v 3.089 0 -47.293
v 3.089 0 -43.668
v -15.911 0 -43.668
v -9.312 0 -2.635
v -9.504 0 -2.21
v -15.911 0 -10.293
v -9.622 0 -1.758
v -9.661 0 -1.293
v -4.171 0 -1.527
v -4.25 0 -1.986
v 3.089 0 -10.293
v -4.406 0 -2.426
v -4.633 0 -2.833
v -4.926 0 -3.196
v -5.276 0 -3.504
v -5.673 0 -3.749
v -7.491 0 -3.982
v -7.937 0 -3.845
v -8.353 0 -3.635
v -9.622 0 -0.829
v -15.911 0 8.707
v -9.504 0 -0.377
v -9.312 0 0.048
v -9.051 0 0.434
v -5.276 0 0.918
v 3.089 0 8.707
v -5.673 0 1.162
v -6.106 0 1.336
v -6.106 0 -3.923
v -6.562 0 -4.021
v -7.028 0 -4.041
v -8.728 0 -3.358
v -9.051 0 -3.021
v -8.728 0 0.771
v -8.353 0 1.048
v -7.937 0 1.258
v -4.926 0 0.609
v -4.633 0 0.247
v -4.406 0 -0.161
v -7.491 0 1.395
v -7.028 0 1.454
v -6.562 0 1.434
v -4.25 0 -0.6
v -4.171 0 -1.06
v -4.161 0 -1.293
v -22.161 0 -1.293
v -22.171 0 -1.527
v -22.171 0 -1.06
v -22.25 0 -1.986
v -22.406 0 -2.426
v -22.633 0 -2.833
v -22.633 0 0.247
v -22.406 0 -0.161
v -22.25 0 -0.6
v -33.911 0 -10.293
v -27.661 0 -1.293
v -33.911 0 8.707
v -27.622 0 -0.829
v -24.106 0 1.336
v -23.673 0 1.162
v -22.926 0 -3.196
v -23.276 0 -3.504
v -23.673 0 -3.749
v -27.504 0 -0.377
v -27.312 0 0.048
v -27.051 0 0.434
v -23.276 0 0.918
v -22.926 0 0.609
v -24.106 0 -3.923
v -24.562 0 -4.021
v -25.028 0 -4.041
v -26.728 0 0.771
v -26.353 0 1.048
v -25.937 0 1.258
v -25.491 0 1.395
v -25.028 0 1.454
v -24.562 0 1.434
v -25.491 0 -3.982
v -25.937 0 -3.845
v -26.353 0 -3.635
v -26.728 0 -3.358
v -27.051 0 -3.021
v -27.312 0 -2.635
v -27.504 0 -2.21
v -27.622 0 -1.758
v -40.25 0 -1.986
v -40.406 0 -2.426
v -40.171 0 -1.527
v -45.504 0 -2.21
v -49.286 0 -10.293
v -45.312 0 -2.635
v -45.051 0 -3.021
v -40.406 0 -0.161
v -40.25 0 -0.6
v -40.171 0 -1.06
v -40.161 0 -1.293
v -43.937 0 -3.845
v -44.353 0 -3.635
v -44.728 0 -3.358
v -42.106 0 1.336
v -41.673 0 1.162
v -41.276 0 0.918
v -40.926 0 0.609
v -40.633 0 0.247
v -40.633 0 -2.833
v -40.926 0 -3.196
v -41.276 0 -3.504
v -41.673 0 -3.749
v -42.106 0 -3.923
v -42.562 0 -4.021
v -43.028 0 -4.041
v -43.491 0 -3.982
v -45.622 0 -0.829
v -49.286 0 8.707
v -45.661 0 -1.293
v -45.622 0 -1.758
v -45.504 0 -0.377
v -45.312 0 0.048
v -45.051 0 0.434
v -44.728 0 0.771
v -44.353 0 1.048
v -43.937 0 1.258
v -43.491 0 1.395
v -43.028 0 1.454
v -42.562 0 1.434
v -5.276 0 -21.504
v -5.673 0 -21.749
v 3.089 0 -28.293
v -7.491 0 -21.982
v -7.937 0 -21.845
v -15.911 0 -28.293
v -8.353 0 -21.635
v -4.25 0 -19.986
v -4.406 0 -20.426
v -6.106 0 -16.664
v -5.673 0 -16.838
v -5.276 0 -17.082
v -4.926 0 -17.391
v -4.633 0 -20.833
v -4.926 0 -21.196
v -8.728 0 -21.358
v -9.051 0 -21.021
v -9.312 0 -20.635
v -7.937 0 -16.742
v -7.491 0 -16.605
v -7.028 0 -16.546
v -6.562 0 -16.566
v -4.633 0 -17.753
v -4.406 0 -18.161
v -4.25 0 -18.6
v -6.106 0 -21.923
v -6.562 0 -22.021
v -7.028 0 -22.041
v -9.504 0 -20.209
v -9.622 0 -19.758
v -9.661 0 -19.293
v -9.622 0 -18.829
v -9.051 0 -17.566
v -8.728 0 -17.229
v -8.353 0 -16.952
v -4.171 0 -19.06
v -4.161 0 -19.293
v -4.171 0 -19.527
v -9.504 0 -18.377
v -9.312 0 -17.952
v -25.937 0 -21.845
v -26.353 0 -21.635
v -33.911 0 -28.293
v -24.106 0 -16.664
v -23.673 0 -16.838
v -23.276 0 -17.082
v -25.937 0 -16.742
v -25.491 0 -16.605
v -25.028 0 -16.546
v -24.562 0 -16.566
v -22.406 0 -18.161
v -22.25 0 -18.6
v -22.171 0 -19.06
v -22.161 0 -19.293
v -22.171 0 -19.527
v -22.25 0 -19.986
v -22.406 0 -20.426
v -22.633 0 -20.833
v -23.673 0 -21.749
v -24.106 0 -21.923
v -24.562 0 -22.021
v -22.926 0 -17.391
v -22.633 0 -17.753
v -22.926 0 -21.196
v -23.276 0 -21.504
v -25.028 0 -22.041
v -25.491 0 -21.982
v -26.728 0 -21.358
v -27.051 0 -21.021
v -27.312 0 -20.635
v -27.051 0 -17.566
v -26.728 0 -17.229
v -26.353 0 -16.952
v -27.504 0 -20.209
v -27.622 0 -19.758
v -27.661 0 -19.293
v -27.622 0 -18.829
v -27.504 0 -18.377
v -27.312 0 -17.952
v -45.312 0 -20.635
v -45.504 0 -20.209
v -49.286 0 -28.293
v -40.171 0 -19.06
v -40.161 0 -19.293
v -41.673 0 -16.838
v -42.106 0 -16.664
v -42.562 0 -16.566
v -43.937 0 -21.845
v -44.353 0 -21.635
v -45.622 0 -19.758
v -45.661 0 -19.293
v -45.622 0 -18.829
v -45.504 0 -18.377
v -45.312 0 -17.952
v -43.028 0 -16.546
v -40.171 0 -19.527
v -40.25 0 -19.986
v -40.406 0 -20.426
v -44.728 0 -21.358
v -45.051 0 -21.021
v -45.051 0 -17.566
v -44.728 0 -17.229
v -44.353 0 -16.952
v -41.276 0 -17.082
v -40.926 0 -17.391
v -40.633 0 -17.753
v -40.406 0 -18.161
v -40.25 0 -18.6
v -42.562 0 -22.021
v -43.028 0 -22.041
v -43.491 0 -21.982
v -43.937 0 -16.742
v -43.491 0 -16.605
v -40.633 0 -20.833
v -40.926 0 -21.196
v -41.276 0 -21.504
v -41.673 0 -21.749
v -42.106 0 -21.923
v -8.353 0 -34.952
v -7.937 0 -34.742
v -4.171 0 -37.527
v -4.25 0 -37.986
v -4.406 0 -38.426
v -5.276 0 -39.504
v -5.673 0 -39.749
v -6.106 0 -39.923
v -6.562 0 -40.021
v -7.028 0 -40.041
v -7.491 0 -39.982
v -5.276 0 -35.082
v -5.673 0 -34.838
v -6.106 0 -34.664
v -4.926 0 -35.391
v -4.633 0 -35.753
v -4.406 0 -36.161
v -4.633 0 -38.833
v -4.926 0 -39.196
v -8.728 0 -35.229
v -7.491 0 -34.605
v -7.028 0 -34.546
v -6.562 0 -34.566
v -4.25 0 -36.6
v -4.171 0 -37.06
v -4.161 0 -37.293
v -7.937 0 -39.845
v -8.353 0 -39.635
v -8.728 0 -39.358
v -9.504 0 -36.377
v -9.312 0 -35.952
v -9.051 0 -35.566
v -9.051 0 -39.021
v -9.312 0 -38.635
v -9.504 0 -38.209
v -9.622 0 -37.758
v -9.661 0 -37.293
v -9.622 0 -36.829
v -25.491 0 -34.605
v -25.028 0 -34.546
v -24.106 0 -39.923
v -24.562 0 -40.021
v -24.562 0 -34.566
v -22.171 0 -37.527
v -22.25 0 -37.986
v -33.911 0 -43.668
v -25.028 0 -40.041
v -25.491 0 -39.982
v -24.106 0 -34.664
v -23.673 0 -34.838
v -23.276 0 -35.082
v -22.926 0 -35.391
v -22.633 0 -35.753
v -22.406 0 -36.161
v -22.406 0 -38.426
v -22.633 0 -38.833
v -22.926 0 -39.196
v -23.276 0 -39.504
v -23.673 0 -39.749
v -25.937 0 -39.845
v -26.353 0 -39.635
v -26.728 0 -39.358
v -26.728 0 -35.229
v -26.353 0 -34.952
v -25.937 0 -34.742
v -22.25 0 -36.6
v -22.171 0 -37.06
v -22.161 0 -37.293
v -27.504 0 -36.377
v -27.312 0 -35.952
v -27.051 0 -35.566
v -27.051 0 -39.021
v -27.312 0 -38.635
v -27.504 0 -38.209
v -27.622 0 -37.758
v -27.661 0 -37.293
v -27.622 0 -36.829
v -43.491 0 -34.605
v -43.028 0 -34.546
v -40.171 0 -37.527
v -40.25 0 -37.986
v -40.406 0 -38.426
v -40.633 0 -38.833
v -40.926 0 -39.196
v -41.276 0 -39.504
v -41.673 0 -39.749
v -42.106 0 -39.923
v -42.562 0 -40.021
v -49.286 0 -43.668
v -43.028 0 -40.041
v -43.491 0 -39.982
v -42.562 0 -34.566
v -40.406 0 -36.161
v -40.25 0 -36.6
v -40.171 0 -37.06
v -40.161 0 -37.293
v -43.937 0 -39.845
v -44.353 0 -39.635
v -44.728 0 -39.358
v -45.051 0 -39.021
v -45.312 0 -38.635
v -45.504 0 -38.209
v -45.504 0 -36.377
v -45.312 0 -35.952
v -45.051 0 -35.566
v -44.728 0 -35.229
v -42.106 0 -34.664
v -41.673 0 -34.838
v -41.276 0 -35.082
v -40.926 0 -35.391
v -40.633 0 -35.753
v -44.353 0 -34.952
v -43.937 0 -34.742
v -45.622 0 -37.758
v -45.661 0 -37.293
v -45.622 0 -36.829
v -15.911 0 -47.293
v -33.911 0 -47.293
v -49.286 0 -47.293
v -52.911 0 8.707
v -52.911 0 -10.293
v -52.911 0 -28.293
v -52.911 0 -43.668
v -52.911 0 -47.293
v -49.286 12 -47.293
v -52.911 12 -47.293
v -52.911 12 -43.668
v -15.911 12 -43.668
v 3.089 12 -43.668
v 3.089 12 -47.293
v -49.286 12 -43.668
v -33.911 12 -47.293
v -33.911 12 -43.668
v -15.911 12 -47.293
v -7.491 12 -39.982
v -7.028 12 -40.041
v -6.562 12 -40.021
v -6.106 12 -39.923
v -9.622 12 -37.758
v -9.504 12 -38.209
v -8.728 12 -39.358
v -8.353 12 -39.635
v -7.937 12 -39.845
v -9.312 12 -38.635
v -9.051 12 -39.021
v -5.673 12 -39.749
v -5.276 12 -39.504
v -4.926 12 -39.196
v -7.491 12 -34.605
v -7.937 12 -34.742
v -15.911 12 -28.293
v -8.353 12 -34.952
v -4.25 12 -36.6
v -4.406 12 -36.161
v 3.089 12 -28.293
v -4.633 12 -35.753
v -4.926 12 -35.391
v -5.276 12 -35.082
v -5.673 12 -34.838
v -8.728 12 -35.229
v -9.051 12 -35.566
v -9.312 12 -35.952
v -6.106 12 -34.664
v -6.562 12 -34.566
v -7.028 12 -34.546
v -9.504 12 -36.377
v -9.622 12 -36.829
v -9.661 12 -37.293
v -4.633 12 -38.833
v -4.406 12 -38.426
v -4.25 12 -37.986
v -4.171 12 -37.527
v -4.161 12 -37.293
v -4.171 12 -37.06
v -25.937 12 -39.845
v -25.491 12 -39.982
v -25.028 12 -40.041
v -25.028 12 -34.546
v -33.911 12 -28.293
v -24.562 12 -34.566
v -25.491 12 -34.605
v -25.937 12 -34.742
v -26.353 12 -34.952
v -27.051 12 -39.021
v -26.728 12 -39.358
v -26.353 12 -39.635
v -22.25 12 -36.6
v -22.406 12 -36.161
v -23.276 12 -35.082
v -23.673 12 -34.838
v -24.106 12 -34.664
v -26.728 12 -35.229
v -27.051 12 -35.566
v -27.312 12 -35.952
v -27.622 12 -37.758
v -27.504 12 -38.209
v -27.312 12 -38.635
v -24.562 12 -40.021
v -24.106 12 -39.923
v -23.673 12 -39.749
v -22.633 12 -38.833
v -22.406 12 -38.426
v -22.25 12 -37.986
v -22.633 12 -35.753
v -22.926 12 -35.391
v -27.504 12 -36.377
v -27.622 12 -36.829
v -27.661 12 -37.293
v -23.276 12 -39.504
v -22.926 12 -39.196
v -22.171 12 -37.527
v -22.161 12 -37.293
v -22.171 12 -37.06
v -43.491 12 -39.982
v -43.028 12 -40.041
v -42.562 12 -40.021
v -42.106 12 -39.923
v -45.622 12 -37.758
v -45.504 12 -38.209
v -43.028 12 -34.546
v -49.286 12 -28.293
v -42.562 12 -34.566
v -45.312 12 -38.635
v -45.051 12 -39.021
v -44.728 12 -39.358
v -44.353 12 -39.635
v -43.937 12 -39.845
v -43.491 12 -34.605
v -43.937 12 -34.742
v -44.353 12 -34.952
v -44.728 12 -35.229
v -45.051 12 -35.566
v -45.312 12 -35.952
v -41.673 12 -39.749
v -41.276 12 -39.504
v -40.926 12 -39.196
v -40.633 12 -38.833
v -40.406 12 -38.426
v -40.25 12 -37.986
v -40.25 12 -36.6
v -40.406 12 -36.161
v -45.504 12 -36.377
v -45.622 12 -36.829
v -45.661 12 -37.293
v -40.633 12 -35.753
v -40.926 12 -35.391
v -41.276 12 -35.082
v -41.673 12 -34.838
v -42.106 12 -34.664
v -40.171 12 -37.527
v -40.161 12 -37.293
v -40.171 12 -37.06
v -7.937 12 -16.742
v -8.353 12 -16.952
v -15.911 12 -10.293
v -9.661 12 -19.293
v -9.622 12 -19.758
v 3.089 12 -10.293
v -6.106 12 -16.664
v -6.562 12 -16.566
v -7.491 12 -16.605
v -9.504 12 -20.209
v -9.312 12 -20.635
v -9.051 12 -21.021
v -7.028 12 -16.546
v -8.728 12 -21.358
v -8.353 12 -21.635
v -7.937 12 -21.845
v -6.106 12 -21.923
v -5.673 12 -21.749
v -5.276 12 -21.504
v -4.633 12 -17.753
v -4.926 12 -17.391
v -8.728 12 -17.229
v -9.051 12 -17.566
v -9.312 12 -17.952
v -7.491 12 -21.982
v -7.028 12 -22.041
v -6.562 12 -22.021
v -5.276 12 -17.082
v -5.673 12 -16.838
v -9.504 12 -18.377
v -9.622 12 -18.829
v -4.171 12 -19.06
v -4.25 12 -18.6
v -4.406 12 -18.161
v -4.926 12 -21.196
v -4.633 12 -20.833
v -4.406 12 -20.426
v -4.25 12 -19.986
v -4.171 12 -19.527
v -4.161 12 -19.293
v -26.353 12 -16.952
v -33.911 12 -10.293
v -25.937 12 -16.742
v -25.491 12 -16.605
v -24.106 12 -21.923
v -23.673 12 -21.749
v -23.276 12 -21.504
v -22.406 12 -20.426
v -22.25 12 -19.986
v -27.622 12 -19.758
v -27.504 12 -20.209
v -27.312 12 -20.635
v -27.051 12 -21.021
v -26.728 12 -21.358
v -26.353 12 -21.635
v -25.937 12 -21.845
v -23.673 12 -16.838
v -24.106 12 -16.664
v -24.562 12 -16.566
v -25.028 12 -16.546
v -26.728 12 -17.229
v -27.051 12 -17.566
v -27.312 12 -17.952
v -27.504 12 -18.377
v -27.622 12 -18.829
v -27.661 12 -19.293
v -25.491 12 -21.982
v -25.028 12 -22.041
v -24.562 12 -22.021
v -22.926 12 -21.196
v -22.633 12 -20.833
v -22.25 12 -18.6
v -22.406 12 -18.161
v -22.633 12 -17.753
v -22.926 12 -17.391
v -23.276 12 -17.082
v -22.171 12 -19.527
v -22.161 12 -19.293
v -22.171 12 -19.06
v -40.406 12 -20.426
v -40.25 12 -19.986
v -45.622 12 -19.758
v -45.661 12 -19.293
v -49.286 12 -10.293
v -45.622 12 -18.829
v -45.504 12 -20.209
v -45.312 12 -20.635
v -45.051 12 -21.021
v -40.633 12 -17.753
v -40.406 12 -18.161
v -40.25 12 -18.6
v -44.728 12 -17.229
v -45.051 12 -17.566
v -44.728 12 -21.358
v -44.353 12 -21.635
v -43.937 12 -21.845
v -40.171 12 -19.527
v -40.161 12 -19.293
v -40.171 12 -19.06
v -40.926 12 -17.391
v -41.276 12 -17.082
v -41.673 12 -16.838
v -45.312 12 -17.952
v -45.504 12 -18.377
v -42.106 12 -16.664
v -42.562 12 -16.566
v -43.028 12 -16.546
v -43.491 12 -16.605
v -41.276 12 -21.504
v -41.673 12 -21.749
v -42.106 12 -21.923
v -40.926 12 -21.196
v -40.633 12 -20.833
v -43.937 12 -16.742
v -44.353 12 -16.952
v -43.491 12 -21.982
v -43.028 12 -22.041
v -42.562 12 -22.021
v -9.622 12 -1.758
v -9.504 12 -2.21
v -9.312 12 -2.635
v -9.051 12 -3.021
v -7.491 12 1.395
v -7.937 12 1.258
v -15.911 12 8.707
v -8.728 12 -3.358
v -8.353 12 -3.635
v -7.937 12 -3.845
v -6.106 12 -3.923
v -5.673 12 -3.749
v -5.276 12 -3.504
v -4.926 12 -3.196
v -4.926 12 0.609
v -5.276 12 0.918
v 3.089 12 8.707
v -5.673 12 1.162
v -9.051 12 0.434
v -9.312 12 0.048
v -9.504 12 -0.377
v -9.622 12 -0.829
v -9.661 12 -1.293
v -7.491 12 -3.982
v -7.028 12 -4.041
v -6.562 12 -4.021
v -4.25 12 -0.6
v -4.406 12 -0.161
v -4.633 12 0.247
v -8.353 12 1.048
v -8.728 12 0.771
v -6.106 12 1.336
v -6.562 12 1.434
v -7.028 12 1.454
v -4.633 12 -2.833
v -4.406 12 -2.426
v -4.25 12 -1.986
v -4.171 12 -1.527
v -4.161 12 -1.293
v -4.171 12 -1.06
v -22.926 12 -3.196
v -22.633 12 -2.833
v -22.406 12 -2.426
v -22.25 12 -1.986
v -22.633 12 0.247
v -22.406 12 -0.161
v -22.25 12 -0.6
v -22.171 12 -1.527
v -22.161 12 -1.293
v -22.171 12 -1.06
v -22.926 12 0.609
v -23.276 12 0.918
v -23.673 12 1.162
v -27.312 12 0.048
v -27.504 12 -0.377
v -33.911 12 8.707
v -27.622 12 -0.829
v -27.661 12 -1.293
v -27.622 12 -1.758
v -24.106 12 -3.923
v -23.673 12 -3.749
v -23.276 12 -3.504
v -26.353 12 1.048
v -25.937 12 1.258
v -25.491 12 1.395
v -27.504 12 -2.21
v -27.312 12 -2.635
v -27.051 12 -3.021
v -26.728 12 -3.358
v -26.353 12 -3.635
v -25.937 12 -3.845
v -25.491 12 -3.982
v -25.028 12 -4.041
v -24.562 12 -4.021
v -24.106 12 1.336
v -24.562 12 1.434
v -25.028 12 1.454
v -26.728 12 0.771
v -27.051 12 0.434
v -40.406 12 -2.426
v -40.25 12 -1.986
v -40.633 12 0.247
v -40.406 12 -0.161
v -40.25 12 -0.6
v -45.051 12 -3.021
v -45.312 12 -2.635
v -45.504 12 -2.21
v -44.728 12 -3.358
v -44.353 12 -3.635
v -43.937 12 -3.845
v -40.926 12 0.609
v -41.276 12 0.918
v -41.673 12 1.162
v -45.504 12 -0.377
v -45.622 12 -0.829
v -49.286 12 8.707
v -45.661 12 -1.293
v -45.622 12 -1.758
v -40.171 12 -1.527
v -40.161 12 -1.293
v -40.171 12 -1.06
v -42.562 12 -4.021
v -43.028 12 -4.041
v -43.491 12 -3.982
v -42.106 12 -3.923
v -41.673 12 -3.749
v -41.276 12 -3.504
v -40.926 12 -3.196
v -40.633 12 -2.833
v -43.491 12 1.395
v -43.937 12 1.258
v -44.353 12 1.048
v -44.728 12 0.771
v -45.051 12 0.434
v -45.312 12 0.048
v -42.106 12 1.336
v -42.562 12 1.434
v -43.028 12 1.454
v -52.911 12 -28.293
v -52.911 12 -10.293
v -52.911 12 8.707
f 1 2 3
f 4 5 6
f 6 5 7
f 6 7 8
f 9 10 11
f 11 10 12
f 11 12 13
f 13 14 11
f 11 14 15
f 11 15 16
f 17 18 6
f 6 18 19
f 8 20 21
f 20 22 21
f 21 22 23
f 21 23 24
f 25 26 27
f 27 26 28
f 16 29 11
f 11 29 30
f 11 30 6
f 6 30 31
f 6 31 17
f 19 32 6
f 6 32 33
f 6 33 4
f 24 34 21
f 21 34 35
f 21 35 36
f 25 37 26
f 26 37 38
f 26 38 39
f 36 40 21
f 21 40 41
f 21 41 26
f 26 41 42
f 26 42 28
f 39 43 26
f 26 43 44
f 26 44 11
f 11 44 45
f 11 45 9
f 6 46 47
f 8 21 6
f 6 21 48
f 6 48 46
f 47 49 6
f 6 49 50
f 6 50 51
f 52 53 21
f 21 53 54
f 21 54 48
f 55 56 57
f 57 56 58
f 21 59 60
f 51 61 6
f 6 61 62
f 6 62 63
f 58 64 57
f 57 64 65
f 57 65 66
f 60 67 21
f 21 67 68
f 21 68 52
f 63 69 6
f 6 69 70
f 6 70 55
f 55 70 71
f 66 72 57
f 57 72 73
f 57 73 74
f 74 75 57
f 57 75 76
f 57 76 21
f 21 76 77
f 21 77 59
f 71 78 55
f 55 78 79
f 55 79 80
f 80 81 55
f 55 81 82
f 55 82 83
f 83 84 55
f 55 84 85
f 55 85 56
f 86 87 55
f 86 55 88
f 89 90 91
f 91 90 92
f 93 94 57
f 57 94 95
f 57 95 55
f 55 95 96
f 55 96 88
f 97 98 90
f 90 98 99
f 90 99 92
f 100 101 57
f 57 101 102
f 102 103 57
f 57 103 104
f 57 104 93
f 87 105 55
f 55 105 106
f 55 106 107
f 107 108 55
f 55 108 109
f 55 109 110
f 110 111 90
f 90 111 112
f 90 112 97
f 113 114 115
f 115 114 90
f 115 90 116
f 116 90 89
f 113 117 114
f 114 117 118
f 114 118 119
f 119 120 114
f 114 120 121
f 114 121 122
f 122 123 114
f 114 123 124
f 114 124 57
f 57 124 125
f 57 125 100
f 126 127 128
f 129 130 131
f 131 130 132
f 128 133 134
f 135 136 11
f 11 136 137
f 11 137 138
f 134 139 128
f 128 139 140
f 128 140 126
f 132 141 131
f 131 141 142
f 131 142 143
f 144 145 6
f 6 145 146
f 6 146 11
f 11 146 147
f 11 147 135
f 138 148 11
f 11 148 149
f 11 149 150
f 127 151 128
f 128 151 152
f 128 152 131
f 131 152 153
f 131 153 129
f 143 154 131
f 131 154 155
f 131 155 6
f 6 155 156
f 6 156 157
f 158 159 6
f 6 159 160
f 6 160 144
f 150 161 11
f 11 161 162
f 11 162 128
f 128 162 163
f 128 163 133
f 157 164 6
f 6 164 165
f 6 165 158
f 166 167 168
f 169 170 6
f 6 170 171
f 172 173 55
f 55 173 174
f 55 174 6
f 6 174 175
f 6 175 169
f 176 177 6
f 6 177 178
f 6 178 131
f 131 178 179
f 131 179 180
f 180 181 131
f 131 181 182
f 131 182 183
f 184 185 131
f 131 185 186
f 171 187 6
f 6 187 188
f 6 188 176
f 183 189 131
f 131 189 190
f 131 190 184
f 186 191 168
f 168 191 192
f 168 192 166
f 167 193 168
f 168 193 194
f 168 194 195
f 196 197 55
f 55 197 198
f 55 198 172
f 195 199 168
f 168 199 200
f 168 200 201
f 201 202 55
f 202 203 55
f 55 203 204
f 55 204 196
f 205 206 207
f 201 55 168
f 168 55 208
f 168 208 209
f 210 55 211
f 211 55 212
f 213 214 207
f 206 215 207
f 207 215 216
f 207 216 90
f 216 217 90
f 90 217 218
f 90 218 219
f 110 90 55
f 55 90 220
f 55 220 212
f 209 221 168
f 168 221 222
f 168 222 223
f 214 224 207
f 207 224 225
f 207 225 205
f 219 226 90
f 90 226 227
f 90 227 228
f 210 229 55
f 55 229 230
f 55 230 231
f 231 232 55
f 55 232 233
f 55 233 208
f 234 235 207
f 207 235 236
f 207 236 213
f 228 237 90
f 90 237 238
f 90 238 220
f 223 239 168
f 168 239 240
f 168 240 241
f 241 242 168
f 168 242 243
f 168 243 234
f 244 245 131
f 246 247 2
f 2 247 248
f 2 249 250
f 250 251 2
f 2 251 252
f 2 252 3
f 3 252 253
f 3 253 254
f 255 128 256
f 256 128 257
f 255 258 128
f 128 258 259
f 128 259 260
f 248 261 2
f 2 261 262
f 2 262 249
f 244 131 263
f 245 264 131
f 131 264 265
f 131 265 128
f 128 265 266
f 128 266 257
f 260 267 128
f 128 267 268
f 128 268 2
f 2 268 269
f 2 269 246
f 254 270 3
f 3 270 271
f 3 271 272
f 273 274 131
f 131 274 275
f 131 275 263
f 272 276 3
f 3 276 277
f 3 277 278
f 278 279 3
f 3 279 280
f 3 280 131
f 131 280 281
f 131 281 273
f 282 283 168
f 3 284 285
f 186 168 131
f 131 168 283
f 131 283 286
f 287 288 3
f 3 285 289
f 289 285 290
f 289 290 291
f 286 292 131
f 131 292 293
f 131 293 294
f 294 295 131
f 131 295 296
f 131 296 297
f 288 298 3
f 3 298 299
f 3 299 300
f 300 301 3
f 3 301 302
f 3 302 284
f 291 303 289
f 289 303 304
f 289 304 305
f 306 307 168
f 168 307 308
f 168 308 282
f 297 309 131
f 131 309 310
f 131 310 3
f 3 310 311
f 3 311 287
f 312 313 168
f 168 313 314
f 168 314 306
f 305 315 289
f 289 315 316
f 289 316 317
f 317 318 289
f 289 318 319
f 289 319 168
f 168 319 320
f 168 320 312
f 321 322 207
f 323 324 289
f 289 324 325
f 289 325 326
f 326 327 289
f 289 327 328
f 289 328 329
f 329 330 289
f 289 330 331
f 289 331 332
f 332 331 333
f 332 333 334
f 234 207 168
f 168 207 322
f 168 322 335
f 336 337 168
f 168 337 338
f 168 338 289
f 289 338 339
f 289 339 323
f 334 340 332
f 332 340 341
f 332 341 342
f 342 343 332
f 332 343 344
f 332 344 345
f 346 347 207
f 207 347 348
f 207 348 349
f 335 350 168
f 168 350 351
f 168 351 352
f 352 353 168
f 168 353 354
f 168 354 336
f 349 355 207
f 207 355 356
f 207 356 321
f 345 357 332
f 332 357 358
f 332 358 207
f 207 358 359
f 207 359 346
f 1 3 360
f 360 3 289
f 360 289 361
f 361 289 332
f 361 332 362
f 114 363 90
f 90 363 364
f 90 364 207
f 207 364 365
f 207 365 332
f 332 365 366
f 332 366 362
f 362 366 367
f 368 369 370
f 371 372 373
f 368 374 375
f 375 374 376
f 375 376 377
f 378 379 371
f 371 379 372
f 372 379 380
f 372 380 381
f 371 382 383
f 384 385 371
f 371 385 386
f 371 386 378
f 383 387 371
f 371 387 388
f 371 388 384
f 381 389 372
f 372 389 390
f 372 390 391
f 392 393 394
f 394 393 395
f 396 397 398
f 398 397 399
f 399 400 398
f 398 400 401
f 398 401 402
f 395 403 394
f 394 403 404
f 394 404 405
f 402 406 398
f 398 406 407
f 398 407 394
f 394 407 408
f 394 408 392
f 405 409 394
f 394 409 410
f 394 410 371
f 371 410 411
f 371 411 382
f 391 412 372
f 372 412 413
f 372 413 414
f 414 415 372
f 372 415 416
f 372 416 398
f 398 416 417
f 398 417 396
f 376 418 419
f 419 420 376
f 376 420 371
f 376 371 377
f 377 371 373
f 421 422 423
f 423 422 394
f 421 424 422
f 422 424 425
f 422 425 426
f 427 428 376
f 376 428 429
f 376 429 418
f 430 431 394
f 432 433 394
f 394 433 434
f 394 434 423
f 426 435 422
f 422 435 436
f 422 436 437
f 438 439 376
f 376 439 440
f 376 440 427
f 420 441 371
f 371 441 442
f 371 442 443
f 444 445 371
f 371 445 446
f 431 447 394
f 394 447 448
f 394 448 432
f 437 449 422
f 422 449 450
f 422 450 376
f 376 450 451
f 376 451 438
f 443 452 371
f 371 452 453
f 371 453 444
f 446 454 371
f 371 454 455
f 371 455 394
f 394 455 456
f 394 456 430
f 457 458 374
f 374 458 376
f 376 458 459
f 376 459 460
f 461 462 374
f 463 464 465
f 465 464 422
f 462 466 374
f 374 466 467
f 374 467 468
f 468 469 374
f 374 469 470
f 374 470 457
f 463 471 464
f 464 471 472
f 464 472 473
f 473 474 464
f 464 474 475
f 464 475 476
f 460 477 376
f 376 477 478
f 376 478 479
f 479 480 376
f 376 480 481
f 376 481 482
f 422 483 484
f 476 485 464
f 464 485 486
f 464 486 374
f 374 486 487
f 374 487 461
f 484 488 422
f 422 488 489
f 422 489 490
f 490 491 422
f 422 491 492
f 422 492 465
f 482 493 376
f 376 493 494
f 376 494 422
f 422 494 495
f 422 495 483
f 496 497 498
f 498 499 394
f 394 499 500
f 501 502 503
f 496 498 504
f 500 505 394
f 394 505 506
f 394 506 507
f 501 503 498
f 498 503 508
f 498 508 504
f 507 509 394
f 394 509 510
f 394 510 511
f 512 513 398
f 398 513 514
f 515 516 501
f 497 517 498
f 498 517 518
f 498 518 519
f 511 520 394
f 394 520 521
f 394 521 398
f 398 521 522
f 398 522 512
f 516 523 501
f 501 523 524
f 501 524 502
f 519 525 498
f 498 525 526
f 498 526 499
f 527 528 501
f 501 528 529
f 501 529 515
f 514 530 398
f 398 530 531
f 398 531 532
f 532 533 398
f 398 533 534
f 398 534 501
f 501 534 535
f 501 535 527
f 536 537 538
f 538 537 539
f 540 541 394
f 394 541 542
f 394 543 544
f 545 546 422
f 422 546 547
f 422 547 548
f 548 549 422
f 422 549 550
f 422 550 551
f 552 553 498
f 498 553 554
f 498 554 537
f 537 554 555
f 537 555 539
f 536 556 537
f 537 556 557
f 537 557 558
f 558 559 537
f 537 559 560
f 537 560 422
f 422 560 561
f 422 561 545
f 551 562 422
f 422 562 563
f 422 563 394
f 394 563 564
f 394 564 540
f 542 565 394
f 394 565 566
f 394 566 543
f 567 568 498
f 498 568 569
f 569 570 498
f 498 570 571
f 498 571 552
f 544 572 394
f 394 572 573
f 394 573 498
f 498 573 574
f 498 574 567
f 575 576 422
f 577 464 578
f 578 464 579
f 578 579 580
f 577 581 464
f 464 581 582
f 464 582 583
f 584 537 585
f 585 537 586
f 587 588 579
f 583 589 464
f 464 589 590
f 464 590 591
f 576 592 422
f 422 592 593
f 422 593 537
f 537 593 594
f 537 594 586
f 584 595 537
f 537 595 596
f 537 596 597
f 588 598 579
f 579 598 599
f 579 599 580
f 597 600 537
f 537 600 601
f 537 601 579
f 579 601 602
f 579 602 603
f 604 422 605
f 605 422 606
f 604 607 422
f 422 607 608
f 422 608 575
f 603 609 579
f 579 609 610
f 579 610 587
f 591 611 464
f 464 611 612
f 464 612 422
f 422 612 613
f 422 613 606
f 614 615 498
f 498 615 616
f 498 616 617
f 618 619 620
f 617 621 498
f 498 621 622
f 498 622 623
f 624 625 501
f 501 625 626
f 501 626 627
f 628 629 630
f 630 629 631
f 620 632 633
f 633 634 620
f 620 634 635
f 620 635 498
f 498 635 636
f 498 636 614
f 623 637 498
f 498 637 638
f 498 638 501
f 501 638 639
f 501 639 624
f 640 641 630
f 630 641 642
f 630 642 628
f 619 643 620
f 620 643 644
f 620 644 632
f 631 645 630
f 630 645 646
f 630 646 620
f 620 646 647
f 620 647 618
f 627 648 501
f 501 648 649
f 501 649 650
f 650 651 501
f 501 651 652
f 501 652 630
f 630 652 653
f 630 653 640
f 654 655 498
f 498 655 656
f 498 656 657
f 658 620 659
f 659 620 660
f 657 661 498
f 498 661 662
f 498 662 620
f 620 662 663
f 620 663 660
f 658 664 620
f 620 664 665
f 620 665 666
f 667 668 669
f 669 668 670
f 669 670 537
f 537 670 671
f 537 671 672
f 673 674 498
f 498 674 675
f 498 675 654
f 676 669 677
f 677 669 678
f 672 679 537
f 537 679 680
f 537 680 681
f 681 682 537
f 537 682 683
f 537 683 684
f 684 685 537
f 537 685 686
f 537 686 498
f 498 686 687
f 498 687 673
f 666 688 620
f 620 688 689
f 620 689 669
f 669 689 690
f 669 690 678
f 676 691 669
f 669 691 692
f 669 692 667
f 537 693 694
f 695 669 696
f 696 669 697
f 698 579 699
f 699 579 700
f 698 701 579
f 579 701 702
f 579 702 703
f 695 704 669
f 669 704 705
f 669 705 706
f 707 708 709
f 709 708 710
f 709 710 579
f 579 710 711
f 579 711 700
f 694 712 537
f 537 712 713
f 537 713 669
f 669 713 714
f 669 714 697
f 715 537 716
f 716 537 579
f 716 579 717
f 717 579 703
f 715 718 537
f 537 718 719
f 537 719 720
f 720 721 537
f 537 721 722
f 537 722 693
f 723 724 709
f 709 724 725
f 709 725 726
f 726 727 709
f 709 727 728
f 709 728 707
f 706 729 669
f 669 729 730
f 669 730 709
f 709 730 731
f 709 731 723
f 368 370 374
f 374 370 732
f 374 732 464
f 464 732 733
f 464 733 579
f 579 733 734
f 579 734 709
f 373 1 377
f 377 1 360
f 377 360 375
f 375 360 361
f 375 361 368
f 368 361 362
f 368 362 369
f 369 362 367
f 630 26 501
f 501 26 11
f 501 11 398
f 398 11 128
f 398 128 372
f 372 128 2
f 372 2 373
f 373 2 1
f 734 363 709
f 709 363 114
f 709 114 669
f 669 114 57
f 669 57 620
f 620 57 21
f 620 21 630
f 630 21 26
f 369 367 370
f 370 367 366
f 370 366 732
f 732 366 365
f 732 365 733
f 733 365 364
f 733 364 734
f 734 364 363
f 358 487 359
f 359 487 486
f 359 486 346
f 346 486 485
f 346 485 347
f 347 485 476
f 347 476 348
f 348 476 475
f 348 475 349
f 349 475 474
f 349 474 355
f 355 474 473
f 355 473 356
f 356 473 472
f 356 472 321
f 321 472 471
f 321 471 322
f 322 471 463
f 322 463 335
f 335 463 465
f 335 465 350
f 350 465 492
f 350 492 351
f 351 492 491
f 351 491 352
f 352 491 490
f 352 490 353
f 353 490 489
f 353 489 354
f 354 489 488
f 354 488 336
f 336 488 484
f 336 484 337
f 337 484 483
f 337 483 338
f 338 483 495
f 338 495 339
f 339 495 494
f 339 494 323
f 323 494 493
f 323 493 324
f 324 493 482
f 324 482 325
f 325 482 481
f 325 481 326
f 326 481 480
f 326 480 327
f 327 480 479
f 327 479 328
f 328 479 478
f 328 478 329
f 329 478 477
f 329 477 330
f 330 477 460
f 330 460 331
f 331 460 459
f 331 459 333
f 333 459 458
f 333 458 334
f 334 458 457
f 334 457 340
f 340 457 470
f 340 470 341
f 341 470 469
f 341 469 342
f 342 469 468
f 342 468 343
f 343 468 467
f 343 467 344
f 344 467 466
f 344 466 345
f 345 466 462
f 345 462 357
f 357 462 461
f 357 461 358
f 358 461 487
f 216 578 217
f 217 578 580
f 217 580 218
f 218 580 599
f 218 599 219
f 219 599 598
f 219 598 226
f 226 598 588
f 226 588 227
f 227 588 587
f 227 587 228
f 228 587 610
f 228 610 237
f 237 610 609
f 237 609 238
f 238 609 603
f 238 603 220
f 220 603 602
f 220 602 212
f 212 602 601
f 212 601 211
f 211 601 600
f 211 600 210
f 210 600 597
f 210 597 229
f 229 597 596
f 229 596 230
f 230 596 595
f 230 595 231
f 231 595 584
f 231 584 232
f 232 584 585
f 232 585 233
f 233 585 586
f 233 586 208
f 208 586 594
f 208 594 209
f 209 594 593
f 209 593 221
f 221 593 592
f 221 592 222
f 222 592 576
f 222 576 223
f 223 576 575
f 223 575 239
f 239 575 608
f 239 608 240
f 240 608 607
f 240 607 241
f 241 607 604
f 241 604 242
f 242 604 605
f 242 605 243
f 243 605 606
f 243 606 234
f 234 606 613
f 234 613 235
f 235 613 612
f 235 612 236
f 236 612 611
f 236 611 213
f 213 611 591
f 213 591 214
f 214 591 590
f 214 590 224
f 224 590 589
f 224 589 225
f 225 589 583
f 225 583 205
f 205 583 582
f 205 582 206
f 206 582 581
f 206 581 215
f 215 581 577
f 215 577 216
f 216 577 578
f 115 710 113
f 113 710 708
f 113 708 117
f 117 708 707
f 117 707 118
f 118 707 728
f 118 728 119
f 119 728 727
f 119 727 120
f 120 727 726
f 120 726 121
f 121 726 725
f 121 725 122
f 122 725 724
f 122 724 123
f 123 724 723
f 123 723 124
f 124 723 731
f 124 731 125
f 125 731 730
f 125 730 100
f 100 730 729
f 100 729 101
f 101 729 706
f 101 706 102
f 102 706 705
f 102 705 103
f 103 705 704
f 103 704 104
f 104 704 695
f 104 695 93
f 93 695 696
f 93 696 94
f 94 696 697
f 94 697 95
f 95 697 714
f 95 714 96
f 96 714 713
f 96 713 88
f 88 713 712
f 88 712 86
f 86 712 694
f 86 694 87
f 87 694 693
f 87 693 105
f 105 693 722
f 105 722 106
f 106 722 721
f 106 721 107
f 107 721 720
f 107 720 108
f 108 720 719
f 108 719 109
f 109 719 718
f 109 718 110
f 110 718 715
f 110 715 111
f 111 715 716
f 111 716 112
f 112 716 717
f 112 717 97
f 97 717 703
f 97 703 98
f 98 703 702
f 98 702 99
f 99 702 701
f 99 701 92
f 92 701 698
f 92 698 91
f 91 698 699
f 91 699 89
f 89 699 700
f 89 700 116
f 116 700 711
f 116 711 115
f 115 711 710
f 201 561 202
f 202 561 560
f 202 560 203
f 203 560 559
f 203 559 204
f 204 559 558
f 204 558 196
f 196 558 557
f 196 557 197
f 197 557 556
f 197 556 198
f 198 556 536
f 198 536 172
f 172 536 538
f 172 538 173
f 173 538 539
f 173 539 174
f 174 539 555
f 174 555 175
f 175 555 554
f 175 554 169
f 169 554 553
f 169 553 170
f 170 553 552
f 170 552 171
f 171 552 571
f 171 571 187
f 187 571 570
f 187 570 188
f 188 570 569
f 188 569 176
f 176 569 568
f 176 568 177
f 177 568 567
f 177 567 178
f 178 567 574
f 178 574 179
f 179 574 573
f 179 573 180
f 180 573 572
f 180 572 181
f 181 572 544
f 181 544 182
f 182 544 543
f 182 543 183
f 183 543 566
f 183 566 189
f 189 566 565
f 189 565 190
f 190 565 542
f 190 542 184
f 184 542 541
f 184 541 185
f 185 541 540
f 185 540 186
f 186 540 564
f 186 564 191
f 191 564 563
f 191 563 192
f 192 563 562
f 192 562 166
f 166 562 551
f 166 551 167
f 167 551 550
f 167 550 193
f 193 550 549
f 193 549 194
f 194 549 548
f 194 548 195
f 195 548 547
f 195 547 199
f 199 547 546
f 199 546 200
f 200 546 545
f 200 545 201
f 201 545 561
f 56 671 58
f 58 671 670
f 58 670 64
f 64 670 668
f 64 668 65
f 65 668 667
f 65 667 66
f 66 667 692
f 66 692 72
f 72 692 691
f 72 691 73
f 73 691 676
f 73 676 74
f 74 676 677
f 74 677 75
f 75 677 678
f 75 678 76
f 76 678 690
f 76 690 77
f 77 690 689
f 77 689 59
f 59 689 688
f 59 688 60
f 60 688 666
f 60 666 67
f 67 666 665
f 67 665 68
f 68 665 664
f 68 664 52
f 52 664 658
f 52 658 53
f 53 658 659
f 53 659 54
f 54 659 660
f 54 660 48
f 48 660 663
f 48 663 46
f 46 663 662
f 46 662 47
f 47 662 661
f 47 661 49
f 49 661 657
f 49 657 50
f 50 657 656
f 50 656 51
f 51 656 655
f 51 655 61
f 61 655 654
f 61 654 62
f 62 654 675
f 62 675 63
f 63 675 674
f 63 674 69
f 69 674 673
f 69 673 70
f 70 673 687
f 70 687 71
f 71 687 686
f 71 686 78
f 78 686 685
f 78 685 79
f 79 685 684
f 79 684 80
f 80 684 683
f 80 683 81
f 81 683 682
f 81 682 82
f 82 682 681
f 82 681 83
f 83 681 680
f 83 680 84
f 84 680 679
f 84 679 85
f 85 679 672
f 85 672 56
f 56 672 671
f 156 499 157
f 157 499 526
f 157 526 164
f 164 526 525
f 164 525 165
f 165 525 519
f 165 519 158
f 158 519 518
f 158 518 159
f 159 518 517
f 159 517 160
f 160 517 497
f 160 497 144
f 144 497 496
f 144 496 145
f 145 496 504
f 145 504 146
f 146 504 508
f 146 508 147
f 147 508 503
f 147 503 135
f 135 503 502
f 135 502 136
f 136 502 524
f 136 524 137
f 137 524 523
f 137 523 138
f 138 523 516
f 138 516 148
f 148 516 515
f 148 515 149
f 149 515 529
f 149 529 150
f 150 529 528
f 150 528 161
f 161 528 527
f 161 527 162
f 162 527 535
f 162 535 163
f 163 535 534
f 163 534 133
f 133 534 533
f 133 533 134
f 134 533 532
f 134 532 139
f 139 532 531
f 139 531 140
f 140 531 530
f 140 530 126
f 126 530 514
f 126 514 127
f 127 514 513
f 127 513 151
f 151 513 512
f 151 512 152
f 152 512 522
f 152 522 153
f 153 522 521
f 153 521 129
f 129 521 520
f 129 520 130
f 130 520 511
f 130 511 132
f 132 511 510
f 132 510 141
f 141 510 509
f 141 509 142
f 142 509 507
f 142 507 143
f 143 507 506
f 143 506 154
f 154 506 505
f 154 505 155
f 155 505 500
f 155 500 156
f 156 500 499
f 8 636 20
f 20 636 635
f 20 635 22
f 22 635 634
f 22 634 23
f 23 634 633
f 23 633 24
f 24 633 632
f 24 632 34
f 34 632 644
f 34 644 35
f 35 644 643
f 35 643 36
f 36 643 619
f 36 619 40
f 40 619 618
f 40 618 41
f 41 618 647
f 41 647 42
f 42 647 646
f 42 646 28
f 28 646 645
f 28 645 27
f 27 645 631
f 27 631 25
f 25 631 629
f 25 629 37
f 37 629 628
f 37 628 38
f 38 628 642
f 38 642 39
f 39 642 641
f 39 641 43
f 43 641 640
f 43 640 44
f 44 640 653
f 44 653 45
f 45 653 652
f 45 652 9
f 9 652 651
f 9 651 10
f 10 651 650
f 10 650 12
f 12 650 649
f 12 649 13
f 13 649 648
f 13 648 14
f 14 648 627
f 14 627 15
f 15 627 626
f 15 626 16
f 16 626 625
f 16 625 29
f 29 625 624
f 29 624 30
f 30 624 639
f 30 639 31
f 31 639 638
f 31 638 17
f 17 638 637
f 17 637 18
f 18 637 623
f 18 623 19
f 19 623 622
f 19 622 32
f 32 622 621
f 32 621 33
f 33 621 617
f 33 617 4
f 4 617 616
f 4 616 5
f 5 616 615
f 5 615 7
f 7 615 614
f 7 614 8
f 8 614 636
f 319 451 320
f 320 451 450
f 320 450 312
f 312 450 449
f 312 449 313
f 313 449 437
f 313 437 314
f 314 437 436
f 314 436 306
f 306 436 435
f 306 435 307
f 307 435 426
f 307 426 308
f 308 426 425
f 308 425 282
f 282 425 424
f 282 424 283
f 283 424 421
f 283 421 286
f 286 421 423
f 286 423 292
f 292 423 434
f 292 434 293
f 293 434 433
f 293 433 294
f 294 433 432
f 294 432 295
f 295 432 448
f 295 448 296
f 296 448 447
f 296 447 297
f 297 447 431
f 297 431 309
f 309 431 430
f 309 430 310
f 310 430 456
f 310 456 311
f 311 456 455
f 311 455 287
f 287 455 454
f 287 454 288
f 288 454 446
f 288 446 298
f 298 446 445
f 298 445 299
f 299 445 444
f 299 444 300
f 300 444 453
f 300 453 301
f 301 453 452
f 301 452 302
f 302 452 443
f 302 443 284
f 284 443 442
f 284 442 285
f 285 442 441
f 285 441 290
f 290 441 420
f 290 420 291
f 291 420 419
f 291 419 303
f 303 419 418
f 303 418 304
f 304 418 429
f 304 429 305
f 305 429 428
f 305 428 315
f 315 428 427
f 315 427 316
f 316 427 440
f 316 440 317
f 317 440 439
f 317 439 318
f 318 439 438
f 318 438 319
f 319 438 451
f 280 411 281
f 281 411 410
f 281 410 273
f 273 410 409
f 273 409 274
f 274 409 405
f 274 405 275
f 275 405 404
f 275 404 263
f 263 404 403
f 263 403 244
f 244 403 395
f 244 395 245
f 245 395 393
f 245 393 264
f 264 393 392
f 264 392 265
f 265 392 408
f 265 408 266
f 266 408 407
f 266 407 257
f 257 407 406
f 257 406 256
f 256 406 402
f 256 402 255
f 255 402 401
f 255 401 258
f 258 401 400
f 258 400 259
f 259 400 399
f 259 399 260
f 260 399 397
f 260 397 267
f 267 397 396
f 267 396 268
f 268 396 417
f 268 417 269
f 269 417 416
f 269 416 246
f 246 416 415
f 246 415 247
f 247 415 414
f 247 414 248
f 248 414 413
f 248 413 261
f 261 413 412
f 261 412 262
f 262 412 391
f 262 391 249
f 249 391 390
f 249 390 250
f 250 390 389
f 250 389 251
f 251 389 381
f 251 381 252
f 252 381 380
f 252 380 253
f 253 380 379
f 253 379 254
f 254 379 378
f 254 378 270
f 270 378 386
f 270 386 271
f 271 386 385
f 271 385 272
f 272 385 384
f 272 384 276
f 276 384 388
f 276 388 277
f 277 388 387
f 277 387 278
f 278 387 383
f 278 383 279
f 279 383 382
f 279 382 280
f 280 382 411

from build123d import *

# Parameters (mm, degrees)
SKETCH1_W           = 56
SKETCH1_H           = 56
SKETCH1_R           = 2.75
BOSS_EXTRUDE2_DEPTH = 12


with BuildPart() as part:
    # Sketch1 → Boss-Extrude2 (new body)
    with BuildSketch(Plane(origin=(0, 0, 0), x_dir=(1, 0, 0), z_dir=(0, 1, 0))):
        with Locations((-24.911392405, 19.293363463)):
            Rectangle(SKETCH1_W, SKETCH1_H)
        with Locations((-42.911392405, 37.293363463)):
            Circle(SKETCH1_R, mode=Mode.SUBTRACT)
        with Locations((-24.911392405, 37.293363463)):
            Circle(SKETCH1_R, mode=Mode.SUBTRACT)
        with Locations((-6.911392405, 37.293363463)):
            Circle(SKETCH1_R, mode=Mode.SUBTRACT)
        with Locations((-24.911392405, 19.293363463)):
            Circle(SKETCH1_R, mode=Mode.SUBTRACT)
        with Locations((-6.911392405, 19.293363463)):
            Circle(SKETCH1_R, mode=Mode.SUBTRACT)
        with Locations((-24.911392405, 1.293363463)):
            Circle(SKETCH1_R, mode=Mode.SUBTRACT)
        with Locations((-6.911392405, 1.293363463)):
            Circle(SKETCH1_R, mode=Mode.SUBTRACT)
        with Locations((-42.911392405, 19.293363463)):
            Circle(SKETCH1_R, mode=Mode.SUBTRACT)
        with Locations((-42.911392405, 1.293363463)):
            Circle(SKETCH1_R, mode=Mode.SUBTRACT)
    extrude(amount=BOSS_EXTRUDE2_DEPTH)


solid = part.part
